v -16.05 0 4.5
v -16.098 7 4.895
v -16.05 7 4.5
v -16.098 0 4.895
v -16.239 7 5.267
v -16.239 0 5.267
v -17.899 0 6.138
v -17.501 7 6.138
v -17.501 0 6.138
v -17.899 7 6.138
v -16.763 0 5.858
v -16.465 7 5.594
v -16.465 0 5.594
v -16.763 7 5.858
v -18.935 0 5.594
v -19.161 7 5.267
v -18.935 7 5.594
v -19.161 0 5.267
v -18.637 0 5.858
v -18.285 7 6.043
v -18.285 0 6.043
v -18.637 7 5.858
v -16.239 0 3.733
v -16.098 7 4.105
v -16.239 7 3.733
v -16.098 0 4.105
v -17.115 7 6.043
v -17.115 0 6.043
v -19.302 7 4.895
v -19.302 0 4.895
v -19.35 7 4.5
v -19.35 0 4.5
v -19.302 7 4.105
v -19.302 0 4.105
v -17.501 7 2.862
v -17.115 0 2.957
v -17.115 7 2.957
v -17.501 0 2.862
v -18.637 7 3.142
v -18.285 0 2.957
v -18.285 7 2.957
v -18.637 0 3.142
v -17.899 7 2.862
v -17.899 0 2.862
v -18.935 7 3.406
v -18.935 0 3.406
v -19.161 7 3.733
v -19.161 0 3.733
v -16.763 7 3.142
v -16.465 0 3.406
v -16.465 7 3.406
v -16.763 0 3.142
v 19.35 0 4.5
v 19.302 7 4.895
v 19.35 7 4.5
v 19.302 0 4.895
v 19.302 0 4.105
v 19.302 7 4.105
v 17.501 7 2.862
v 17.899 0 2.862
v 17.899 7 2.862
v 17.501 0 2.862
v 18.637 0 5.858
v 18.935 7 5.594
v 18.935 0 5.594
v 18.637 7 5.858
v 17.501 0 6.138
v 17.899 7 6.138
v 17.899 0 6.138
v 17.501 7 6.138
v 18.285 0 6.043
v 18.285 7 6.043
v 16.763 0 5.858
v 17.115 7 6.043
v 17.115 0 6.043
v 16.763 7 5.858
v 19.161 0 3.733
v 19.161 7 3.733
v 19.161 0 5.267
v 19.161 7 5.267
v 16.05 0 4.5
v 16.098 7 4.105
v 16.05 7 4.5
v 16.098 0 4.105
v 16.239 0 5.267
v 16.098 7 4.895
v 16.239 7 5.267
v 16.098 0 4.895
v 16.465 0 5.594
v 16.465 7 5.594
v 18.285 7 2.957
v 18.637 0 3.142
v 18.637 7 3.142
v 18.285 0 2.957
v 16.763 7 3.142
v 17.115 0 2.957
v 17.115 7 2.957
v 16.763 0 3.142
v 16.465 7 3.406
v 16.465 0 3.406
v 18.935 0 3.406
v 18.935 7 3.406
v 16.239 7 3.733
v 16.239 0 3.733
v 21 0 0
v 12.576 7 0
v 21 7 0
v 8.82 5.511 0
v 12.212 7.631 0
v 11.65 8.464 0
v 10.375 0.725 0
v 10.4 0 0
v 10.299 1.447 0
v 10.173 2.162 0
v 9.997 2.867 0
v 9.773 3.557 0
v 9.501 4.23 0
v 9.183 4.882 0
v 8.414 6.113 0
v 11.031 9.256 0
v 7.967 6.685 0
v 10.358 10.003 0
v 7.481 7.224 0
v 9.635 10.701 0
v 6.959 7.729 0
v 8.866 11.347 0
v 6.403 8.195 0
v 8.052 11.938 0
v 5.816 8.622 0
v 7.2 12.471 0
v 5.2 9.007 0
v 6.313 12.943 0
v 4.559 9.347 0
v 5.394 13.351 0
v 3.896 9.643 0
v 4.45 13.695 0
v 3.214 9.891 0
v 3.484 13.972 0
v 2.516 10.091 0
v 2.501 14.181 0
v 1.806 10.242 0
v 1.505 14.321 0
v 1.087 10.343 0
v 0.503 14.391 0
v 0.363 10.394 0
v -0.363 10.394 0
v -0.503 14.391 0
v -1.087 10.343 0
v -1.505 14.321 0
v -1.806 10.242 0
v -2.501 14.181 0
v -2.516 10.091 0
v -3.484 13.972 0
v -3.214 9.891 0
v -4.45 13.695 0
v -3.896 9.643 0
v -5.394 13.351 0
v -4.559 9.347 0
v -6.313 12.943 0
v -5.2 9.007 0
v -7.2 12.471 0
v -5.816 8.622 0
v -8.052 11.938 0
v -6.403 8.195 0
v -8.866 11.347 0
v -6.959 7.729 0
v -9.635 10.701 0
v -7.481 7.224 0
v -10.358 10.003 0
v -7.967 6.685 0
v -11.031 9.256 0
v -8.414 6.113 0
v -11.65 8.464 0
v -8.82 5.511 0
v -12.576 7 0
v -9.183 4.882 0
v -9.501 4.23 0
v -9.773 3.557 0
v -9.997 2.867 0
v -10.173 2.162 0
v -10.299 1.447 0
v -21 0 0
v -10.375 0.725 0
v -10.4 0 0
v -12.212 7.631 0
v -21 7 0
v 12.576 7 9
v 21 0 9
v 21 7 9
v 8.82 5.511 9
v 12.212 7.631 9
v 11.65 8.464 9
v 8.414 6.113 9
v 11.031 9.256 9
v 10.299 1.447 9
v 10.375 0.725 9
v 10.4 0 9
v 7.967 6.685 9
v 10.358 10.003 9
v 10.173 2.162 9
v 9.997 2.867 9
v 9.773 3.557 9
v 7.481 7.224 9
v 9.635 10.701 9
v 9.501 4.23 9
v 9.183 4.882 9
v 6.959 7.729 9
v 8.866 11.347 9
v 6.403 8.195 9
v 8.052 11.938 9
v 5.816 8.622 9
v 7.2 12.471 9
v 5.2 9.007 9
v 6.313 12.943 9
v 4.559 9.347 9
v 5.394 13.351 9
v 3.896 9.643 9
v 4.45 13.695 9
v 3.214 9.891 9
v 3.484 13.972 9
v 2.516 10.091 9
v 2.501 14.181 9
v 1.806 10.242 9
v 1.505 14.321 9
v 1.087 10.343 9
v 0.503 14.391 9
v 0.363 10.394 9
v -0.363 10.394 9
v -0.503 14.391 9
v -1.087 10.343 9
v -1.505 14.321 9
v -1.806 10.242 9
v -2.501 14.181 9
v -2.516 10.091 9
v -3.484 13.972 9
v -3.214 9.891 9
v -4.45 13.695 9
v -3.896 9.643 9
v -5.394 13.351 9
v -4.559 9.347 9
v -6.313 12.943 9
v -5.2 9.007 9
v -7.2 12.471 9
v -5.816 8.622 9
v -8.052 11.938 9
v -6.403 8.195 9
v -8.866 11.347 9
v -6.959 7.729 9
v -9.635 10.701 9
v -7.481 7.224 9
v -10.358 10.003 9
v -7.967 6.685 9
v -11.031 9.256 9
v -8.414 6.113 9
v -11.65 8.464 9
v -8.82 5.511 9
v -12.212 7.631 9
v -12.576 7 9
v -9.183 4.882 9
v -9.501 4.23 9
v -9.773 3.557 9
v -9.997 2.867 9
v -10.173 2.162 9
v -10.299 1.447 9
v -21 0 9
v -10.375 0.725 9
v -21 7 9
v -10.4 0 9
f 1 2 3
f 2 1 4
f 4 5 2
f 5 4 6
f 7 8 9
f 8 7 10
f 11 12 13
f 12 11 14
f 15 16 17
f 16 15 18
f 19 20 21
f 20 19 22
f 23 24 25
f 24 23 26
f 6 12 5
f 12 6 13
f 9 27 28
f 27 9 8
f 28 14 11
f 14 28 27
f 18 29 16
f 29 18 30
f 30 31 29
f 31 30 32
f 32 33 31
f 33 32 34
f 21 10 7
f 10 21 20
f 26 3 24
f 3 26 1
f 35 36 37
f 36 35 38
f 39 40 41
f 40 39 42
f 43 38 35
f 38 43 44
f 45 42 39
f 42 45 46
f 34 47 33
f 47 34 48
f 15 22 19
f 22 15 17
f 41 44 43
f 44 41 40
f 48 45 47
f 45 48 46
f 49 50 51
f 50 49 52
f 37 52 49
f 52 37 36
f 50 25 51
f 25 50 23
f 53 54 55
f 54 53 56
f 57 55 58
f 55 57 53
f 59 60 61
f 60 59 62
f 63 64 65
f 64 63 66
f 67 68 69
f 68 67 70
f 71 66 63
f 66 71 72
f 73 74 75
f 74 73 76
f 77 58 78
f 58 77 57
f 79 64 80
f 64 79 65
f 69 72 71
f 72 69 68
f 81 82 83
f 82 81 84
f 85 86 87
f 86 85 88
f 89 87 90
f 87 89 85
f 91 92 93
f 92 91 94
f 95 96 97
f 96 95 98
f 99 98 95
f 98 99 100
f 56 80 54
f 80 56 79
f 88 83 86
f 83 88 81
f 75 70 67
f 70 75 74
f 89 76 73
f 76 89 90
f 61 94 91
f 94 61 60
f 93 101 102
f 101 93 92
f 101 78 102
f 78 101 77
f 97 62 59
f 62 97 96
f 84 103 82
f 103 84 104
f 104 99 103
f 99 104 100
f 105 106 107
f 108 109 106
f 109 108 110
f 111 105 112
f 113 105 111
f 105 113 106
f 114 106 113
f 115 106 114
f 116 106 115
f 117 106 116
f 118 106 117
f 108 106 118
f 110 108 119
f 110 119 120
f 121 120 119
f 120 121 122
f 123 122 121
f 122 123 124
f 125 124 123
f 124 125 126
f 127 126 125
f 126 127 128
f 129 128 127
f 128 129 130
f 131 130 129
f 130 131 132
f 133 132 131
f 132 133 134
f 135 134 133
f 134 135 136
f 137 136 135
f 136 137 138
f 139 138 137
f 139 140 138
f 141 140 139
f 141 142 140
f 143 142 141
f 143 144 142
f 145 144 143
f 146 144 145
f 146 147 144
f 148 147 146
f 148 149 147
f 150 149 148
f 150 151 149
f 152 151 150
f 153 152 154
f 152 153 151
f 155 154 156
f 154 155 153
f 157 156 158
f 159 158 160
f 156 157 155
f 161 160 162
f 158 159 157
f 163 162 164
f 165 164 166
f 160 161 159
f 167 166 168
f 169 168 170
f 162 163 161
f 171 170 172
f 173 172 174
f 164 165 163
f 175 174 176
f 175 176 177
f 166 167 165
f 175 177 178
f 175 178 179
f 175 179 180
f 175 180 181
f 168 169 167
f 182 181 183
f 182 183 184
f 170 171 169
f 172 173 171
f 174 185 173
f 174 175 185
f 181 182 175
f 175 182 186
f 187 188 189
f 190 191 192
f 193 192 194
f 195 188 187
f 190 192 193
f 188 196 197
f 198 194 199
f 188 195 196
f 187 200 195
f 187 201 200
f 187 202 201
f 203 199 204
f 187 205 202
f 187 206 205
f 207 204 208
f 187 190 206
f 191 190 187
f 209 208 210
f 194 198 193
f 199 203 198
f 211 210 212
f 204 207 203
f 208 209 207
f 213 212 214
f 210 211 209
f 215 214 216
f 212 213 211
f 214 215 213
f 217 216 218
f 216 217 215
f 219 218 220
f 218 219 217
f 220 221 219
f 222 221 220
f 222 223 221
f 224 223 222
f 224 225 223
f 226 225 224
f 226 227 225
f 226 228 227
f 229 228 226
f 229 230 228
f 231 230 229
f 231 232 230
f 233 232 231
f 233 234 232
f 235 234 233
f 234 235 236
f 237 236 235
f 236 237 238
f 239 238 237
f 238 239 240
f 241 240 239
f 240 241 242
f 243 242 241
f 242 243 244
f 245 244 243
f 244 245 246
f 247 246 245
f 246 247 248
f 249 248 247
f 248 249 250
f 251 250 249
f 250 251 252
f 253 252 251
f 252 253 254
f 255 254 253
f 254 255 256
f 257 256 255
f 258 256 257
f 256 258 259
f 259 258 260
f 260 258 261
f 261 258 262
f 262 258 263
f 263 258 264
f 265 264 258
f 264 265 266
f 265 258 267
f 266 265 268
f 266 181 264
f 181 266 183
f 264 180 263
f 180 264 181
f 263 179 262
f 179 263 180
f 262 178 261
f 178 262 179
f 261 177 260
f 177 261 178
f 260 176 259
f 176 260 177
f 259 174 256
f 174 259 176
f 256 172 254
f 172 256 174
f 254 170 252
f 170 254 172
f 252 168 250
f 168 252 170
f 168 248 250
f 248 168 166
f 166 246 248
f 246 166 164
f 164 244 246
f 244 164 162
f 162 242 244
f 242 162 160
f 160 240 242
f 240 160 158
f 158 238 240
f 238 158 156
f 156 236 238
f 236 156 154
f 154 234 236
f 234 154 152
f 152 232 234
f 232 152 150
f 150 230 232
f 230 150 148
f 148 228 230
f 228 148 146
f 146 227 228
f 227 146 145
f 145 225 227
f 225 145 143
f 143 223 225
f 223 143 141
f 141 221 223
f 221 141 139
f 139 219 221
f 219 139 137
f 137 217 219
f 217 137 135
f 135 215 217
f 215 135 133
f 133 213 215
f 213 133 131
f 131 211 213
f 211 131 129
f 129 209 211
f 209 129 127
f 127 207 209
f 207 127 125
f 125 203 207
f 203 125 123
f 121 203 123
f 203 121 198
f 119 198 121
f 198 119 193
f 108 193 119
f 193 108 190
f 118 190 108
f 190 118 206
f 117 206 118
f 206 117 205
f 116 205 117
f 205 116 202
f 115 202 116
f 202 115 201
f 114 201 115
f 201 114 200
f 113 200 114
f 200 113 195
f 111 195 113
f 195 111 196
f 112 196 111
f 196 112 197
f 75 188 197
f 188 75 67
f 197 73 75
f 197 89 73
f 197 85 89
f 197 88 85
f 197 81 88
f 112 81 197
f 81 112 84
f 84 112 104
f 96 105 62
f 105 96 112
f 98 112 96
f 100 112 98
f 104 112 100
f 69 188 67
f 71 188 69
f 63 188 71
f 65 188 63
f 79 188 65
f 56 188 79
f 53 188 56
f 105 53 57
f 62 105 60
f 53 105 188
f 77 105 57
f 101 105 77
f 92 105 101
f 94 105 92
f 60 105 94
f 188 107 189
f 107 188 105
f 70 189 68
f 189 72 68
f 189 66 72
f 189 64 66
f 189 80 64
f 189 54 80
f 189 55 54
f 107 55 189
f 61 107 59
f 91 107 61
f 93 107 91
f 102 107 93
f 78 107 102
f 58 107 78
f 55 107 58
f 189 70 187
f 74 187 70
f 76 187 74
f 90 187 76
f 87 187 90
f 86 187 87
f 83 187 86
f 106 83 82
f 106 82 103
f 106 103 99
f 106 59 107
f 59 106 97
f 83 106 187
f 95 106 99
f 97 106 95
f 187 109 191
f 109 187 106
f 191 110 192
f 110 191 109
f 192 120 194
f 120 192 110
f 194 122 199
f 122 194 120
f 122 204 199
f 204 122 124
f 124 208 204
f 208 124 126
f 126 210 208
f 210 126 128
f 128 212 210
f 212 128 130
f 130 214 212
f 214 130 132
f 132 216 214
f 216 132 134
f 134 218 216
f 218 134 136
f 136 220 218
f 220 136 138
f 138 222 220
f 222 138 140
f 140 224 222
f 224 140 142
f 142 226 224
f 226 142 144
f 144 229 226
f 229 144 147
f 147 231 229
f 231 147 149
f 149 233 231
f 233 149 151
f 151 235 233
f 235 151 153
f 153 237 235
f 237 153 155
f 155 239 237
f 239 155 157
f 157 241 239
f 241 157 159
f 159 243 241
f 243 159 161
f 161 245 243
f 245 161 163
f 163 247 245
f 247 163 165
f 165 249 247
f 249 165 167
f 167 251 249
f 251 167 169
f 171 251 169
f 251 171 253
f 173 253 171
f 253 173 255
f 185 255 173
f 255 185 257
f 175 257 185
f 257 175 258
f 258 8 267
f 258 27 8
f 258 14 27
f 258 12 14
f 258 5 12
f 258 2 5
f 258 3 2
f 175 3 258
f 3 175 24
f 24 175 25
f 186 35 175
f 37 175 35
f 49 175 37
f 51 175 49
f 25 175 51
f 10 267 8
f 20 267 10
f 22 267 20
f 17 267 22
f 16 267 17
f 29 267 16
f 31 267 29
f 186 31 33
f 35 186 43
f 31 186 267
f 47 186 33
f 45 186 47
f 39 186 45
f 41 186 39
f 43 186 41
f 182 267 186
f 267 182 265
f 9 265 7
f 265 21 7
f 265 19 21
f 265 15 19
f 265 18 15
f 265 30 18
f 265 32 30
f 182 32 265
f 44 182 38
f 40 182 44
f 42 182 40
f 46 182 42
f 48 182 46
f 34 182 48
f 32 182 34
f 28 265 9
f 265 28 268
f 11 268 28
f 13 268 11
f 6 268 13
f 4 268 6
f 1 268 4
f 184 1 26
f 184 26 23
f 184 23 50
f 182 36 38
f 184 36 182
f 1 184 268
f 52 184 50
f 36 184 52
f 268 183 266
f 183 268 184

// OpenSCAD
// =====================================================================
//  AquaFeeder -- tampa do berco (fecha o tubo contra a bracadeira)
//  Imprimir EM PE como sai daqui (perfil constante, zero suporte).
//  4x M3 x 16mm roscam direto na bracadeira.
// =====================================================================
include <common.scad>

brk_w       = 9;      // so cabe a janela livre do tubo (x 40..49)
cradle_wall = 4.0;
ear_u       = 6.6;
cr_out      = barrel_od/2 + cradle_wall;
bolt_z      = [brk_w/2];

module cap_profile() {
    difference() {
        union() {
            circle(r = cr_out);
            translate([-cr_out - ear_u, 0]) square([2*(cr_out + ear_u), 7]);
        }
        circle(r = barrel_od/2 + fit/2);
        translate([-40, -40]) square([80, 40]);   // remove tudo abaixo do eixo
    }
}

module saddle_cap() {
    difference() {
        linear_extrude(brk_w) cap_profile();
        for (z = bolt_z, s = [-1, 1])
            translate([s * (cr_out + ear_u/2), 8, z])
                rotate([90, 0, 0]) cylinder(d = m3_free + fit, h = 11);
    }
}

saddle_cap();
